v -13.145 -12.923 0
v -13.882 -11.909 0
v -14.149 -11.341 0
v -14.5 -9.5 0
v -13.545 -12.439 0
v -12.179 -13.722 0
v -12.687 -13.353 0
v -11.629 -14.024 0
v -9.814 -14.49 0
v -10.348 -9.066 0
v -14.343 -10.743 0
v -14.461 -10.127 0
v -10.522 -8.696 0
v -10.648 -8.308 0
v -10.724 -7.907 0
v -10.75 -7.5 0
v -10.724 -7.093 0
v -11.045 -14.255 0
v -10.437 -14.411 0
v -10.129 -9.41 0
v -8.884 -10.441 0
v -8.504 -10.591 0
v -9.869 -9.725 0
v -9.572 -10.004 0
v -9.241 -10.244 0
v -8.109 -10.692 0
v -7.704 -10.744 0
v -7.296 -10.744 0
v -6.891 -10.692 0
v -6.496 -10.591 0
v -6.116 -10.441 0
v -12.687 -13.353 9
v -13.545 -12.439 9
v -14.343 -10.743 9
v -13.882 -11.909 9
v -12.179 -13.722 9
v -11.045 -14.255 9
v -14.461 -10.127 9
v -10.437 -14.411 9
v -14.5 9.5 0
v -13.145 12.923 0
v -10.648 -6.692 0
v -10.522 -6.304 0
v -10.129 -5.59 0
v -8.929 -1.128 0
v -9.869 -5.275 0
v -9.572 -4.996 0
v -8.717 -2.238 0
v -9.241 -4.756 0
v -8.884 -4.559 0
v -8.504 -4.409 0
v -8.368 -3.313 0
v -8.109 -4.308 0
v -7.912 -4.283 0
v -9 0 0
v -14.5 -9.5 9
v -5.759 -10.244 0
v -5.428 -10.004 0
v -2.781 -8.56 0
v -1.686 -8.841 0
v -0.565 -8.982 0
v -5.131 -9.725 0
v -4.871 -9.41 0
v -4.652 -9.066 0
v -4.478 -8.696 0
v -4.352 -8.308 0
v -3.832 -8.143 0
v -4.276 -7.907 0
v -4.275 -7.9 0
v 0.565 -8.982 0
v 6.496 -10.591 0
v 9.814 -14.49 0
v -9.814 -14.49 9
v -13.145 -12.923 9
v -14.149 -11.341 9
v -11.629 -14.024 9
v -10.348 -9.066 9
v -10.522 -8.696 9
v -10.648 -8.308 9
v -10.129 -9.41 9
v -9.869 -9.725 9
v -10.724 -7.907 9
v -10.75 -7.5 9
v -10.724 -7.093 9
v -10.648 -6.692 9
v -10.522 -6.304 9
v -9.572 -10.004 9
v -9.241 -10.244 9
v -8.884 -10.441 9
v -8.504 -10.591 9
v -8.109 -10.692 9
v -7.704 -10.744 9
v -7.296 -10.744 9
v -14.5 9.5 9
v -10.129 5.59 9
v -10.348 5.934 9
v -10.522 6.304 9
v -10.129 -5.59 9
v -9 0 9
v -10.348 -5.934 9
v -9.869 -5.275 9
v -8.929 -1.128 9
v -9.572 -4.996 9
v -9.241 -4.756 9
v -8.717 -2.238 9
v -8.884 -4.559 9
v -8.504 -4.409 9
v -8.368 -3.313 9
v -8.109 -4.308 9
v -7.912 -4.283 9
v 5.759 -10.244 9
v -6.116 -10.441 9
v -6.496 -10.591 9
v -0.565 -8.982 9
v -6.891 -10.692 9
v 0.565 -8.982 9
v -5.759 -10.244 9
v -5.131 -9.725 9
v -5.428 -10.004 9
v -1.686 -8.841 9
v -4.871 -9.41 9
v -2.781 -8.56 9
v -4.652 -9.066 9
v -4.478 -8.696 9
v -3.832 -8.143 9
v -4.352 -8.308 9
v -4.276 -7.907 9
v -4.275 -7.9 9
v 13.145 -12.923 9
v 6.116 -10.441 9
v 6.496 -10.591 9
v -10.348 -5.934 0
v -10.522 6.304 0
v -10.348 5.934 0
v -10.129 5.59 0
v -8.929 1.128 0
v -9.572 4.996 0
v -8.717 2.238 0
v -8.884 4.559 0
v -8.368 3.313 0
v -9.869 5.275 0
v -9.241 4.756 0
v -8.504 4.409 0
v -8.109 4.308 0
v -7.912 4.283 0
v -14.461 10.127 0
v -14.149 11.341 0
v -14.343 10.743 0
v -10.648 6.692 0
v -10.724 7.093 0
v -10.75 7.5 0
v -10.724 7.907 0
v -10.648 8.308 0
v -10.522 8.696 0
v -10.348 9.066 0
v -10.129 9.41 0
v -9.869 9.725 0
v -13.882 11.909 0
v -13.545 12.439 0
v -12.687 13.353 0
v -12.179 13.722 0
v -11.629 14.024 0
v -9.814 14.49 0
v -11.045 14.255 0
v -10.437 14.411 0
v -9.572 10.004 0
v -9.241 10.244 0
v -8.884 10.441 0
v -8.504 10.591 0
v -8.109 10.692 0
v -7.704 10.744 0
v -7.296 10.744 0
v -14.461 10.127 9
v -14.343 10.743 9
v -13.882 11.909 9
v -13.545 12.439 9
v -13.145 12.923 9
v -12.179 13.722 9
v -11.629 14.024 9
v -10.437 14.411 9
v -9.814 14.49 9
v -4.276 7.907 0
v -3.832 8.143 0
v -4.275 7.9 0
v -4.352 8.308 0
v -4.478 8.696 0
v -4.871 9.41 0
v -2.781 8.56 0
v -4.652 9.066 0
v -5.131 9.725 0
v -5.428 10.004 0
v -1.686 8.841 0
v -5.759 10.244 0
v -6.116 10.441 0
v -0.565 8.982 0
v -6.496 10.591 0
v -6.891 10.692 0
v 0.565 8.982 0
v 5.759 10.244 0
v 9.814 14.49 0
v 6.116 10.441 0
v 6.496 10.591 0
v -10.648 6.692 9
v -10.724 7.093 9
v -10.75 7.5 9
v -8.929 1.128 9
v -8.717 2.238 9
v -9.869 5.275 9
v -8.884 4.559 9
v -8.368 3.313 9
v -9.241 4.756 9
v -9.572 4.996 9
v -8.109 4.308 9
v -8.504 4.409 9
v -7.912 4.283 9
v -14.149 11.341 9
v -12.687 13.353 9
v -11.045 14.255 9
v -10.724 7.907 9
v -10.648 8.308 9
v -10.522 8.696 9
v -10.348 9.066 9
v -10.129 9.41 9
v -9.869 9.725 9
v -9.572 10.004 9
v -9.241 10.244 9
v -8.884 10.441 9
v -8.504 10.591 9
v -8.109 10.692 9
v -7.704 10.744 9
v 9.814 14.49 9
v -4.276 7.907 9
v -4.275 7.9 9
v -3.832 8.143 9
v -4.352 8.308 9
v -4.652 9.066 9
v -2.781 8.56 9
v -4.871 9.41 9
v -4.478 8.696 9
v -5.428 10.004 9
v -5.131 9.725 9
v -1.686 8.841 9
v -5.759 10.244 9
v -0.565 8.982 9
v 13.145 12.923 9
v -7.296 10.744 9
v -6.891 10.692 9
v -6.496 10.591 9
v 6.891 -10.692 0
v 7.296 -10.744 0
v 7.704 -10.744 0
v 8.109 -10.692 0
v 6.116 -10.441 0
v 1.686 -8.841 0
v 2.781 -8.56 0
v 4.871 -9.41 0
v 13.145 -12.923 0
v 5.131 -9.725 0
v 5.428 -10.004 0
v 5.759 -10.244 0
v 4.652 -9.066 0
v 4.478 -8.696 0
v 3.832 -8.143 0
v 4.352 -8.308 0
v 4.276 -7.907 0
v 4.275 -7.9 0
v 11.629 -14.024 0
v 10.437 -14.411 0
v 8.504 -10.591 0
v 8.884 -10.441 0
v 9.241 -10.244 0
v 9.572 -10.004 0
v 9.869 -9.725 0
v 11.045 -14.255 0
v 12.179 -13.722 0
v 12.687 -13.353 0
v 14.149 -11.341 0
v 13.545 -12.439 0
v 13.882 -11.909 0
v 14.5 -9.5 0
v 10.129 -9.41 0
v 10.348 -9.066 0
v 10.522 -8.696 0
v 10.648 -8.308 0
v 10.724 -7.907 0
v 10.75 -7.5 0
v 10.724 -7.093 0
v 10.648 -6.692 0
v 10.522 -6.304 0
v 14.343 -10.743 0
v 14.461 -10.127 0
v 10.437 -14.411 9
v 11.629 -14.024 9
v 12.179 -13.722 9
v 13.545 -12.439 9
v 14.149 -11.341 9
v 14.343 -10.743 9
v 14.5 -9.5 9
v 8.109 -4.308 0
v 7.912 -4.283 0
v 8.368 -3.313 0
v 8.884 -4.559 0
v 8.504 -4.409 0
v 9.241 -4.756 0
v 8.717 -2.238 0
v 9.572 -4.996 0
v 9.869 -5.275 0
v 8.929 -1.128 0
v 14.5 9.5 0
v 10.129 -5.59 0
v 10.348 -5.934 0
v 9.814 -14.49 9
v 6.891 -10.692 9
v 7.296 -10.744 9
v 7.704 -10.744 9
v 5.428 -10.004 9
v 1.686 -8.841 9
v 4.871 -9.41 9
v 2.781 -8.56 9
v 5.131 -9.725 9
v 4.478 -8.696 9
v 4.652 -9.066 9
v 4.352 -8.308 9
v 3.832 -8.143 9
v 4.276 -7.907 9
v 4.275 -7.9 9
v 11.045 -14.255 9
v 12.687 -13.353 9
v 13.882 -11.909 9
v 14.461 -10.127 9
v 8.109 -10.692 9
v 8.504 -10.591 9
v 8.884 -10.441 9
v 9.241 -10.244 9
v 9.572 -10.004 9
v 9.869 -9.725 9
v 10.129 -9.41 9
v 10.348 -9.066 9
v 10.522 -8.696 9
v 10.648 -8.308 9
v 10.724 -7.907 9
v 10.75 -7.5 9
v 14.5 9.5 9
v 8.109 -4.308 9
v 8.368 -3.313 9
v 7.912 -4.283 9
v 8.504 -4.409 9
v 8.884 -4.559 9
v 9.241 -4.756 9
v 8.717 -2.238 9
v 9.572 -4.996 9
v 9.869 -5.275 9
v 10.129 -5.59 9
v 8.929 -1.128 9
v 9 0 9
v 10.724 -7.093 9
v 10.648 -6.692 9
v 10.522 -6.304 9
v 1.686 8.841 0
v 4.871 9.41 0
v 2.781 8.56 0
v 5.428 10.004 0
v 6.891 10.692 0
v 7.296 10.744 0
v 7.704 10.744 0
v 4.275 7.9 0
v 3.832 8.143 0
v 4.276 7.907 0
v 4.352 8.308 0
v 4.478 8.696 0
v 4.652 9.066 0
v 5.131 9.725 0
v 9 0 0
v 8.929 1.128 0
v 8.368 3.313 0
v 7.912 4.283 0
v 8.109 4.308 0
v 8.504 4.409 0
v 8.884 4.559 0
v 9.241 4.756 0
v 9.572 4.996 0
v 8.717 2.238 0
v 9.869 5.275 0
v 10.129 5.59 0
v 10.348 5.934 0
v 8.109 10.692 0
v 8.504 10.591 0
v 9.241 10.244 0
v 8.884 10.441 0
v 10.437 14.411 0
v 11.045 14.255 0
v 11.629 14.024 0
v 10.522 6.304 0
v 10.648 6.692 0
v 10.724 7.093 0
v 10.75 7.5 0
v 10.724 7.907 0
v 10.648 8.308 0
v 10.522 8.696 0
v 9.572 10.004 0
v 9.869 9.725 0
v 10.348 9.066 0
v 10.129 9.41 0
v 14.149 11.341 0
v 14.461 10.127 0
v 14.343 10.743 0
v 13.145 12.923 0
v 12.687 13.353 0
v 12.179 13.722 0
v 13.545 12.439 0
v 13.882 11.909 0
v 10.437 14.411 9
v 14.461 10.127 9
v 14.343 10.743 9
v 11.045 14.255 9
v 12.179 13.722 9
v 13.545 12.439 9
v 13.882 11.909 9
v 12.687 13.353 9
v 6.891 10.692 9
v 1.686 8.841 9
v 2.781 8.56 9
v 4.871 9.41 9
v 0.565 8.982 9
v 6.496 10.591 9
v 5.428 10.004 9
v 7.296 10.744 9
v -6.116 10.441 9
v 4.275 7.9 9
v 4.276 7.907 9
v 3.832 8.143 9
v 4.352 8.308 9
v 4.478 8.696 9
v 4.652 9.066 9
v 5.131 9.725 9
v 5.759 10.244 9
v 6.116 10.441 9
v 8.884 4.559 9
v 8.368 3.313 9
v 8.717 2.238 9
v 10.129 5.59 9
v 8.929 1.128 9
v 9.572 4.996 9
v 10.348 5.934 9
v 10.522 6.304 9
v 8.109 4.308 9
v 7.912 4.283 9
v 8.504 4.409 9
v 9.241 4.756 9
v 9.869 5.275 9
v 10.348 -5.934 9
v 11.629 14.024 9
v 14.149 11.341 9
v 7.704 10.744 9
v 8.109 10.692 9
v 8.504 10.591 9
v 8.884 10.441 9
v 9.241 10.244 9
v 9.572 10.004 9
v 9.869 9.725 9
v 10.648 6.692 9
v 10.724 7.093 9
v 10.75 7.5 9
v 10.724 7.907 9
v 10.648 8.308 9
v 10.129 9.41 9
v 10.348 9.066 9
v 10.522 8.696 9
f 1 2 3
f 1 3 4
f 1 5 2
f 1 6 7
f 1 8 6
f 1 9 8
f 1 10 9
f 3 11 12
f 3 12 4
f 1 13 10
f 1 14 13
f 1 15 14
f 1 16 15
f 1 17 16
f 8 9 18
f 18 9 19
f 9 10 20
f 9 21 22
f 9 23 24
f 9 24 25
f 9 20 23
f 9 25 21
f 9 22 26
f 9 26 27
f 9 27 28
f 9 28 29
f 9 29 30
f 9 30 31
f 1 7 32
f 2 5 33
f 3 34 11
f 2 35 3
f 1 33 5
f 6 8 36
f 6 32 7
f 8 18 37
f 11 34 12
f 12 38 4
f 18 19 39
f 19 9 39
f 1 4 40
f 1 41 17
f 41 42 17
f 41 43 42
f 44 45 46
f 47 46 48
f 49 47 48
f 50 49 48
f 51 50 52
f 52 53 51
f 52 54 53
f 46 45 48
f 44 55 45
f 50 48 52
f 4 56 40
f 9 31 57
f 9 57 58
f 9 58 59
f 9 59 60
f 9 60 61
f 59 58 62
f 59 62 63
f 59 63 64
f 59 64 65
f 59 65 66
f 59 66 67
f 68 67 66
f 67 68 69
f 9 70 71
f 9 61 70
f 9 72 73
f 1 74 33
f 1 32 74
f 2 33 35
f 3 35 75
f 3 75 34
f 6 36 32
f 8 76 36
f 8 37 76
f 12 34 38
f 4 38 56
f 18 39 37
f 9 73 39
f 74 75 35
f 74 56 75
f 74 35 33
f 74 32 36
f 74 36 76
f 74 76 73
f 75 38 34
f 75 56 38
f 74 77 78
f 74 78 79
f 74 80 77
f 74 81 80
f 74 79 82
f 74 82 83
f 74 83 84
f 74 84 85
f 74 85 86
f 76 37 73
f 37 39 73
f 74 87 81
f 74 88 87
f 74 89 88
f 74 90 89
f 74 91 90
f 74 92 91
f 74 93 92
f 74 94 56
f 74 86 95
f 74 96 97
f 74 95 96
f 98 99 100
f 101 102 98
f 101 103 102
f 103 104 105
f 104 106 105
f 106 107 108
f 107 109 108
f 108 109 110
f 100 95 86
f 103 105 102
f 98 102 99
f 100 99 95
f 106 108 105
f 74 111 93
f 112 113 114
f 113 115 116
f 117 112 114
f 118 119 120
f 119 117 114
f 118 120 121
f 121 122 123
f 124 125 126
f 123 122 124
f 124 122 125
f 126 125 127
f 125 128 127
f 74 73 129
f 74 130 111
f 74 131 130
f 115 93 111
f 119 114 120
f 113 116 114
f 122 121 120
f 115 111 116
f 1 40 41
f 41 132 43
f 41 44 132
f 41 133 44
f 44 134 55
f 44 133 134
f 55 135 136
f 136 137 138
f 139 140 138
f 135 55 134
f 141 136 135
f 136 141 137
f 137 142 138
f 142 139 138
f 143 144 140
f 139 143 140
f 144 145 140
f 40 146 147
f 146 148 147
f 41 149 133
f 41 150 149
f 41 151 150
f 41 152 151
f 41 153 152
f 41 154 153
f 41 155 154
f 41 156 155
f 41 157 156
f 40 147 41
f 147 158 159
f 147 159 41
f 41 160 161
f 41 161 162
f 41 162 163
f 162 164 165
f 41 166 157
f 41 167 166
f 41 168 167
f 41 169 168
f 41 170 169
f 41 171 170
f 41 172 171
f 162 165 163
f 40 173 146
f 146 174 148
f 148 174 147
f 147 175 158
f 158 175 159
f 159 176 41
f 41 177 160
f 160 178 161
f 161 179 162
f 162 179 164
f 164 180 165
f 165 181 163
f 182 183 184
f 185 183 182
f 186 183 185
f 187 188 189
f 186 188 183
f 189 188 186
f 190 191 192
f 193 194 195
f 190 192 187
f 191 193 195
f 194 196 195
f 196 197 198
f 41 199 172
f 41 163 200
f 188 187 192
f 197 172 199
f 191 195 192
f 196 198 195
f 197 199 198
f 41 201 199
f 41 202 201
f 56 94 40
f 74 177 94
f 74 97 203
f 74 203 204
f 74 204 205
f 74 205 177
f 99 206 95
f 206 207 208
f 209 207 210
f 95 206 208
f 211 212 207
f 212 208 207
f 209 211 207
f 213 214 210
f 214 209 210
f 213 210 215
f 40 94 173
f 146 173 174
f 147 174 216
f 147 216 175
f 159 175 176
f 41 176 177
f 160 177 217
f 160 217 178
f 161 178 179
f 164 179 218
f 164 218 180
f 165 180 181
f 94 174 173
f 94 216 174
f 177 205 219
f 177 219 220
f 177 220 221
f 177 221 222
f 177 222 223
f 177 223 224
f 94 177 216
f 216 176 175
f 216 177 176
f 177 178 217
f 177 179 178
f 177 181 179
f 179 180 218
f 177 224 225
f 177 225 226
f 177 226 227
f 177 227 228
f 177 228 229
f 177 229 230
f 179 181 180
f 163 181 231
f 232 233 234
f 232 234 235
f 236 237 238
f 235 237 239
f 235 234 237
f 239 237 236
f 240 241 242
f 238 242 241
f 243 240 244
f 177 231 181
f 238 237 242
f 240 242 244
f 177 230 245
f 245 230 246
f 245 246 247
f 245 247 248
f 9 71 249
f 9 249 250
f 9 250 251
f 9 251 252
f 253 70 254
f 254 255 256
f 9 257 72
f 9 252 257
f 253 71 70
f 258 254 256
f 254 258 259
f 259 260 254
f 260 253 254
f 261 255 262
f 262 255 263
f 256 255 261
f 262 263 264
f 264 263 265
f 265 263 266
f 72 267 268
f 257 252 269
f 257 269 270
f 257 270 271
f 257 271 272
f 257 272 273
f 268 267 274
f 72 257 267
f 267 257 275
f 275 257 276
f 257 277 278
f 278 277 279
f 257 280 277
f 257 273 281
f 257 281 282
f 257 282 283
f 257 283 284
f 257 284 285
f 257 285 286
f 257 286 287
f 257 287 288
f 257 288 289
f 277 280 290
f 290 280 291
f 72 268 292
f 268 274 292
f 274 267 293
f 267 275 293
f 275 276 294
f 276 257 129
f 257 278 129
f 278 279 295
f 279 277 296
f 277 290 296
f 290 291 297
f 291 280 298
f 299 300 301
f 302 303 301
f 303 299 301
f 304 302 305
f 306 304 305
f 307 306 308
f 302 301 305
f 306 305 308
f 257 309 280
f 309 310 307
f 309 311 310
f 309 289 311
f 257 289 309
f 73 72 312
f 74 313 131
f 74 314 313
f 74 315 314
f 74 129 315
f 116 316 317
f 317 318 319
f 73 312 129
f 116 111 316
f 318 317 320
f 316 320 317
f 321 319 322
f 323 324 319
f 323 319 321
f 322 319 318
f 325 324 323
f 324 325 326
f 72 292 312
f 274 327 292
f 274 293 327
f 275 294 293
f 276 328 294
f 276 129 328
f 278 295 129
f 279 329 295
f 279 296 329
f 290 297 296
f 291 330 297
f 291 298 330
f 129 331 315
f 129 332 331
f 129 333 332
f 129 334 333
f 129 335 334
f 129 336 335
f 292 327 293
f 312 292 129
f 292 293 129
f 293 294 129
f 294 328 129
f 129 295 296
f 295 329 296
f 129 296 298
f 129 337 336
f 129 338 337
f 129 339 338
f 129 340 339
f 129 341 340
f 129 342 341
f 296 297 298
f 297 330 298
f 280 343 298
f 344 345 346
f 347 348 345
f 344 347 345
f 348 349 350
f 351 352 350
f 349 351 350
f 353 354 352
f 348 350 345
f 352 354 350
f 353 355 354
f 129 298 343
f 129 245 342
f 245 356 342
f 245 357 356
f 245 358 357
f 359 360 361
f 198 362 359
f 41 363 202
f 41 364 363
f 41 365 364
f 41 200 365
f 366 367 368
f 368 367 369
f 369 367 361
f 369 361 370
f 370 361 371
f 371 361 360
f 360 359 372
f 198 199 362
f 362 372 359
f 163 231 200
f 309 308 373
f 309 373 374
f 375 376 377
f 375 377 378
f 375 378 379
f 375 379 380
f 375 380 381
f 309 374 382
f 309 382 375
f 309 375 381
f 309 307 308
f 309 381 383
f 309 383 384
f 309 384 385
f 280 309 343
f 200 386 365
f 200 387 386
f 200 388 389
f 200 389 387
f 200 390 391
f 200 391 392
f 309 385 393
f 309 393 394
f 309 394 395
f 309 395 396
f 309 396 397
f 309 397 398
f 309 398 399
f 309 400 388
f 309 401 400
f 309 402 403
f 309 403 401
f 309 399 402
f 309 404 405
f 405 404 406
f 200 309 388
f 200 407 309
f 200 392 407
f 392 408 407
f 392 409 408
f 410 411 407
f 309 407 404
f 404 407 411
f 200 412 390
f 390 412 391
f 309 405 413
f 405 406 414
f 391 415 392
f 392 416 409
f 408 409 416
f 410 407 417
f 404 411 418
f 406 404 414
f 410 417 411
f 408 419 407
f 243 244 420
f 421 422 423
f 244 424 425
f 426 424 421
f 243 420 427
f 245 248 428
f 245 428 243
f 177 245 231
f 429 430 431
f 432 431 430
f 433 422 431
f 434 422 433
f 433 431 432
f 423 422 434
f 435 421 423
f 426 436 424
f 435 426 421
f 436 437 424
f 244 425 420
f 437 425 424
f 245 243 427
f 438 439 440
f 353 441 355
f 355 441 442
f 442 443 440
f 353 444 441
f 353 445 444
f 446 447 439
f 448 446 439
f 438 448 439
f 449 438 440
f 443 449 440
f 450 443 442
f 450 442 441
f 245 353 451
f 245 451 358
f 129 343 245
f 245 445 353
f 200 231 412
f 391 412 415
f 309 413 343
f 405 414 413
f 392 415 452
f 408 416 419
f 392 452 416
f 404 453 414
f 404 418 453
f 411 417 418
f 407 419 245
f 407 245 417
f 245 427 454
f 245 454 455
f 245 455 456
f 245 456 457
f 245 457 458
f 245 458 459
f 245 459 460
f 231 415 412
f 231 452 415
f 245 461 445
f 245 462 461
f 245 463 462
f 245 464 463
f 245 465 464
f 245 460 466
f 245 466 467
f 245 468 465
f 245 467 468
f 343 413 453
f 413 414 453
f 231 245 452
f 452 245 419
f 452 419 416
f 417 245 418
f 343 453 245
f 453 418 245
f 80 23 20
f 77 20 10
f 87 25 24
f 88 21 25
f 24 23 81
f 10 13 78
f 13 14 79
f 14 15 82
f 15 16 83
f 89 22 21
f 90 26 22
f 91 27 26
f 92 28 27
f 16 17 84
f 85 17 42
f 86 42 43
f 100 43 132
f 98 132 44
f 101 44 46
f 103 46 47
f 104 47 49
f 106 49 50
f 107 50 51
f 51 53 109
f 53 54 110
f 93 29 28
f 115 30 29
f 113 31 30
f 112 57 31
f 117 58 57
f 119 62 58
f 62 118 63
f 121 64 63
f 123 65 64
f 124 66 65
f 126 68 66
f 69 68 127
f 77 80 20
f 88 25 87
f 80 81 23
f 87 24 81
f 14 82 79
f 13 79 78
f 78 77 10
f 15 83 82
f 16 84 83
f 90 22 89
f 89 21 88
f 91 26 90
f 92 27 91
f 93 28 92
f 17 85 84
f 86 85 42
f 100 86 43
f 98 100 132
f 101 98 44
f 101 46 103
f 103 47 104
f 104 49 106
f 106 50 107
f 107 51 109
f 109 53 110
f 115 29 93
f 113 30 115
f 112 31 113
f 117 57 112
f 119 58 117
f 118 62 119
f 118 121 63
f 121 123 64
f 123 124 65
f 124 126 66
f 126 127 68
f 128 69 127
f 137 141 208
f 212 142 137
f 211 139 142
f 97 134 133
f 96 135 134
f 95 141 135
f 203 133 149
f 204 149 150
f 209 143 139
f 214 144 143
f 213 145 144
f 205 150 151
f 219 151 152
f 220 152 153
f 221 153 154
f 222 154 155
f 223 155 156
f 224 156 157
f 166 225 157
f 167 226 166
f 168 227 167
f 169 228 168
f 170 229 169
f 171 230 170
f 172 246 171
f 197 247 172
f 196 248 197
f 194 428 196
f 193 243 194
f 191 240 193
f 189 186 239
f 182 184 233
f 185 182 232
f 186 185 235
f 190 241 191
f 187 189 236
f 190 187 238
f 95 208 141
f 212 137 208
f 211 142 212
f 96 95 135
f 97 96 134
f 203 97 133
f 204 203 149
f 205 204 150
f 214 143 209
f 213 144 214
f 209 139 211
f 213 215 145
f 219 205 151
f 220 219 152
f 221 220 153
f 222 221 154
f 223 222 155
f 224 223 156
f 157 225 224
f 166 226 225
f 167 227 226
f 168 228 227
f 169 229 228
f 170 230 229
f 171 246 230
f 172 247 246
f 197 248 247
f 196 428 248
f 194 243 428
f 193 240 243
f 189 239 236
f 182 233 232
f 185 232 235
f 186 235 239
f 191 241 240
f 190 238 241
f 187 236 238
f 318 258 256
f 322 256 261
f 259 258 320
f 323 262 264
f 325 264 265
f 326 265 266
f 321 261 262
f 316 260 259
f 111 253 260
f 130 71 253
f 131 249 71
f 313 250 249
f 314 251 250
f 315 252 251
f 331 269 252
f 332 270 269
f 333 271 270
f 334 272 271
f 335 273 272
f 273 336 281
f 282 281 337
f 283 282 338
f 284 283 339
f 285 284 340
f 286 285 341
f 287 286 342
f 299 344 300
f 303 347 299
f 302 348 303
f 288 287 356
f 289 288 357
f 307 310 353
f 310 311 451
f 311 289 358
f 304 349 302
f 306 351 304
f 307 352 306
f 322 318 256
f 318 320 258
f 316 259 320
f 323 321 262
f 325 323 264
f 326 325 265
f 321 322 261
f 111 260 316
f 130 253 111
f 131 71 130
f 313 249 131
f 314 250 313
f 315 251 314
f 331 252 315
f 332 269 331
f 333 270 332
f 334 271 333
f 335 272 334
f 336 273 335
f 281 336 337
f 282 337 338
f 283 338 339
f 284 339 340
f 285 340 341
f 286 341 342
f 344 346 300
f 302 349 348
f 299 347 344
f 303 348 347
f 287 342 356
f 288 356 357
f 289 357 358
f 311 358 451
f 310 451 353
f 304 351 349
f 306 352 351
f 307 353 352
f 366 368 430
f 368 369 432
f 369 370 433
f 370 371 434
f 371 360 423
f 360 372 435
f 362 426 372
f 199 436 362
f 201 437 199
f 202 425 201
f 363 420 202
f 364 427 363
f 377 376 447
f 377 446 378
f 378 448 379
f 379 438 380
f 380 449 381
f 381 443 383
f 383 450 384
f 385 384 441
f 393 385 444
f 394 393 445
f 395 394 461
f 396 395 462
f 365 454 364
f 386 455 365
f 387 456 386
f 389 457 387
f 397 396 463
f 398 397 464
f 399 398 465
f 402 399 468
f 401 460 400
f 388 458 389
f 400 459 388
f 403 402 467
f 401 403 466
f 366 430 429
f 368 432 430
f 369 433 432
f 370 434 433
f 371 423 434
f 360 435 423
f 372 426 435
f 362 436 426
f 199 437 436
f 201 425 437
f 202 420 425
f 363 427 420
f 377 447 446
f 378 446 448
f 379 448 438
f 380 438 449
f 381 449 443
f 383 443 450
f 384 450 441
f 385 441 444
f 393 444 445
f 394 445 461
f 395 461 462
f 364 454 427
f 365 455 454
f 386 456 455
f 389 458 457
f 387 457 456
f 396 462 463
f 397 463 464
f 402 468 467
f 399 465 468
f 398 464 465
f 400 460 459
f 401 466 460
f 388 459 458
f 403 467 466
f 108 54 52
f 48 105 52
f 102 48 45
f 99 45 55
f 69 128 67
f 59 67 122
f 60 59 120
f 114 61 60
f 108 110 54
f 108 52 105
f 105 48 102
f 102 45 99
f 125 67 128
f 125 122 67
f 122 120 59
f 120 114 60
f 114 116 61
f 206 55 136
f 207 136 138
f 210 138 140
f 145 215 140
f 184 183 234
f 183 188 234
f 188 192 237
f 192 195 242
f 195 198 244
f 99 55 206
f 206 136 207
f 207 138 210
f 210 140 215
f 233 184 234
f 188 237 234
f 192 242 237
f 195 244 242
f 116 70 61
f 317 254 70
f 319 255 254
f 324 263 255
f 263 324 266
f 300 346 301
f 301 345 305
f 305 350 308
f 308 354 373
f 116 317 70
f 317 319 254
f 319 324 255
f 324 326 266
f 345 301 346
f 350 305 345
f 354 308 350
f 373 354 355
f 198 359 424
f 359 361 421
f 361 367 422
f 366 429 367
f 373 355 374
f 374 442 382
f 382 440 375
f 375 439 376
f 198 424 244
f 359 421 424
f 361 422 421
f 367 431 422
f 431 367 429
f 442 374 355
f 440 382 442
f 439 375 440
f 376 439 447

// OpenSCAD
$fn = 50;

difference() {
	union() {
		hull() {
			translate(v = [-9.5, 9.5, 0]) {
				cylinder(h = 9, r = 5);
			}
			translate(v = [9.5, 9.5, 0]) {
				cylinder(h = 9, r = 5);
			}
			translate(v = [-9.5, -9.5, 0]) {
				cylinder(h = 9, r = 5);
			}
			translate(v = [9.5, -9.5, 0]) {
				cylinder(h = 9, r = 5);
			}
		}
	}
	union() {
		translate(v = [-7.5, -7.5, -100.0]) {
			cylinder(h = 200, r = 3.25);
		}
		translate(v = [-7.5, 7.5, -100.0]) {
			cylinder(h = 200, r = 3.25);
		}
		translate(v = [7.5, -7.5, -100.0]) {
			cylinder(h = 200, r = 3.25);
		}
		translate(v = [7.5, 7.5, -100.0]) {
			cylinder(h = 200, r = 3.25);
		}
		translate(v = [-7.5, -7.5, -100.0]) {
			cylinder(h = 200, r = 1.8);
		}
		translate(v = [-7.5, 7.5, -100.0]) {
			cylinder(h = 200, r = 1.8);
		}
		translate(v = [7.5, -7.5, -100.0]) {
			cylinder(h = 200, r = 1.8);
		}
		translate(v = [7.5, 7.5, -100.0]) {
			cylinder(h = 200, r = 1.8);
		}
		cylinder(h = 9, r = 9.0);
	}
}
